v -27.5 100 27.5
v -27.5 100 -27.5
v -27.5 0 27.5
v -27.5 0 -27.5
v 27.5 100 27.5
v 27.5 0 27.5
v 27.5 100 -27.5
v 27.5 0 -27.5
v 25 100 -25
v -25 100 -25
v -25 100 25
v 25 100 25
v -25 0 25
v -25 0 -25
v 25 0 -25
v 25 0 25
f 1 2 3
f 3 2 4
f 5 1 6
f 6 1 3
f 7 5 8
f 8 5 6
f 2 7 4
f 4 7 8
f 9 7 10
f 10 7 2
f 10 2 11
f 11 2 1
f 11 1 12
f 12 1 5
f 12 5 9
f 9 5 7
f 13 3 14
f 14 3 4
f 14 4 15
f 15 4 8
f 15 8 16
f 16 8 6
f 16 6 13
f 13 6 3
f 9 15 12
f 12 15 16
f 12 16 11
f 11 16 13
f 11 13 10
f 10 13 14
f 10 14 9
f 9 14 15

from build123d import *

# Parameters (mm, degrees)
SKETCH_1_W               = 55
SKETCH_1_H               = 55
EXTRUDE_1_DEPTH          = 100
CUT_EXTRUDE_1_DEPTH      = 108.296318669
CUT_EXTRUDE_1_DEPTH_BACK = 108.296318669
SKETCH_2_W               = 50
SKETCH_2_H               = 50


with BuildPart() as part:
    # 草图1 → 凸台-拉伸1 (new body)
    with BuildSketch(Plane(origin=(0, 0, 0), x_dir=(1, 0, 0), z_dir=(0, 1, 0))):
        Rectangle(SKETCH_1_W, SKETCH_1_H)
    extrude(amount=EXTRUDE_1_DEPTH)

    # 草图2 → 切除-拉伸1 (cut, two sides: drawn at the far end of the back side and taken through both)
    with BuildSketch(Plane(origin=(0, 0, 0), x_dir=(1, 0, 0), z_dir=(0, 1, 0)).offset(-CUT_EXTRUDE_1_DEPTH_BACK)):
        Rectangle(SKETCH_2_W, SKETCH_2_H)
    extrude(amount=CUT_EXTRUDE_1_DEPTH + CUT_EXTRUDE_1_DEPTH_BACK, mode=Mode.SUBTRACT)


solid = part.part
